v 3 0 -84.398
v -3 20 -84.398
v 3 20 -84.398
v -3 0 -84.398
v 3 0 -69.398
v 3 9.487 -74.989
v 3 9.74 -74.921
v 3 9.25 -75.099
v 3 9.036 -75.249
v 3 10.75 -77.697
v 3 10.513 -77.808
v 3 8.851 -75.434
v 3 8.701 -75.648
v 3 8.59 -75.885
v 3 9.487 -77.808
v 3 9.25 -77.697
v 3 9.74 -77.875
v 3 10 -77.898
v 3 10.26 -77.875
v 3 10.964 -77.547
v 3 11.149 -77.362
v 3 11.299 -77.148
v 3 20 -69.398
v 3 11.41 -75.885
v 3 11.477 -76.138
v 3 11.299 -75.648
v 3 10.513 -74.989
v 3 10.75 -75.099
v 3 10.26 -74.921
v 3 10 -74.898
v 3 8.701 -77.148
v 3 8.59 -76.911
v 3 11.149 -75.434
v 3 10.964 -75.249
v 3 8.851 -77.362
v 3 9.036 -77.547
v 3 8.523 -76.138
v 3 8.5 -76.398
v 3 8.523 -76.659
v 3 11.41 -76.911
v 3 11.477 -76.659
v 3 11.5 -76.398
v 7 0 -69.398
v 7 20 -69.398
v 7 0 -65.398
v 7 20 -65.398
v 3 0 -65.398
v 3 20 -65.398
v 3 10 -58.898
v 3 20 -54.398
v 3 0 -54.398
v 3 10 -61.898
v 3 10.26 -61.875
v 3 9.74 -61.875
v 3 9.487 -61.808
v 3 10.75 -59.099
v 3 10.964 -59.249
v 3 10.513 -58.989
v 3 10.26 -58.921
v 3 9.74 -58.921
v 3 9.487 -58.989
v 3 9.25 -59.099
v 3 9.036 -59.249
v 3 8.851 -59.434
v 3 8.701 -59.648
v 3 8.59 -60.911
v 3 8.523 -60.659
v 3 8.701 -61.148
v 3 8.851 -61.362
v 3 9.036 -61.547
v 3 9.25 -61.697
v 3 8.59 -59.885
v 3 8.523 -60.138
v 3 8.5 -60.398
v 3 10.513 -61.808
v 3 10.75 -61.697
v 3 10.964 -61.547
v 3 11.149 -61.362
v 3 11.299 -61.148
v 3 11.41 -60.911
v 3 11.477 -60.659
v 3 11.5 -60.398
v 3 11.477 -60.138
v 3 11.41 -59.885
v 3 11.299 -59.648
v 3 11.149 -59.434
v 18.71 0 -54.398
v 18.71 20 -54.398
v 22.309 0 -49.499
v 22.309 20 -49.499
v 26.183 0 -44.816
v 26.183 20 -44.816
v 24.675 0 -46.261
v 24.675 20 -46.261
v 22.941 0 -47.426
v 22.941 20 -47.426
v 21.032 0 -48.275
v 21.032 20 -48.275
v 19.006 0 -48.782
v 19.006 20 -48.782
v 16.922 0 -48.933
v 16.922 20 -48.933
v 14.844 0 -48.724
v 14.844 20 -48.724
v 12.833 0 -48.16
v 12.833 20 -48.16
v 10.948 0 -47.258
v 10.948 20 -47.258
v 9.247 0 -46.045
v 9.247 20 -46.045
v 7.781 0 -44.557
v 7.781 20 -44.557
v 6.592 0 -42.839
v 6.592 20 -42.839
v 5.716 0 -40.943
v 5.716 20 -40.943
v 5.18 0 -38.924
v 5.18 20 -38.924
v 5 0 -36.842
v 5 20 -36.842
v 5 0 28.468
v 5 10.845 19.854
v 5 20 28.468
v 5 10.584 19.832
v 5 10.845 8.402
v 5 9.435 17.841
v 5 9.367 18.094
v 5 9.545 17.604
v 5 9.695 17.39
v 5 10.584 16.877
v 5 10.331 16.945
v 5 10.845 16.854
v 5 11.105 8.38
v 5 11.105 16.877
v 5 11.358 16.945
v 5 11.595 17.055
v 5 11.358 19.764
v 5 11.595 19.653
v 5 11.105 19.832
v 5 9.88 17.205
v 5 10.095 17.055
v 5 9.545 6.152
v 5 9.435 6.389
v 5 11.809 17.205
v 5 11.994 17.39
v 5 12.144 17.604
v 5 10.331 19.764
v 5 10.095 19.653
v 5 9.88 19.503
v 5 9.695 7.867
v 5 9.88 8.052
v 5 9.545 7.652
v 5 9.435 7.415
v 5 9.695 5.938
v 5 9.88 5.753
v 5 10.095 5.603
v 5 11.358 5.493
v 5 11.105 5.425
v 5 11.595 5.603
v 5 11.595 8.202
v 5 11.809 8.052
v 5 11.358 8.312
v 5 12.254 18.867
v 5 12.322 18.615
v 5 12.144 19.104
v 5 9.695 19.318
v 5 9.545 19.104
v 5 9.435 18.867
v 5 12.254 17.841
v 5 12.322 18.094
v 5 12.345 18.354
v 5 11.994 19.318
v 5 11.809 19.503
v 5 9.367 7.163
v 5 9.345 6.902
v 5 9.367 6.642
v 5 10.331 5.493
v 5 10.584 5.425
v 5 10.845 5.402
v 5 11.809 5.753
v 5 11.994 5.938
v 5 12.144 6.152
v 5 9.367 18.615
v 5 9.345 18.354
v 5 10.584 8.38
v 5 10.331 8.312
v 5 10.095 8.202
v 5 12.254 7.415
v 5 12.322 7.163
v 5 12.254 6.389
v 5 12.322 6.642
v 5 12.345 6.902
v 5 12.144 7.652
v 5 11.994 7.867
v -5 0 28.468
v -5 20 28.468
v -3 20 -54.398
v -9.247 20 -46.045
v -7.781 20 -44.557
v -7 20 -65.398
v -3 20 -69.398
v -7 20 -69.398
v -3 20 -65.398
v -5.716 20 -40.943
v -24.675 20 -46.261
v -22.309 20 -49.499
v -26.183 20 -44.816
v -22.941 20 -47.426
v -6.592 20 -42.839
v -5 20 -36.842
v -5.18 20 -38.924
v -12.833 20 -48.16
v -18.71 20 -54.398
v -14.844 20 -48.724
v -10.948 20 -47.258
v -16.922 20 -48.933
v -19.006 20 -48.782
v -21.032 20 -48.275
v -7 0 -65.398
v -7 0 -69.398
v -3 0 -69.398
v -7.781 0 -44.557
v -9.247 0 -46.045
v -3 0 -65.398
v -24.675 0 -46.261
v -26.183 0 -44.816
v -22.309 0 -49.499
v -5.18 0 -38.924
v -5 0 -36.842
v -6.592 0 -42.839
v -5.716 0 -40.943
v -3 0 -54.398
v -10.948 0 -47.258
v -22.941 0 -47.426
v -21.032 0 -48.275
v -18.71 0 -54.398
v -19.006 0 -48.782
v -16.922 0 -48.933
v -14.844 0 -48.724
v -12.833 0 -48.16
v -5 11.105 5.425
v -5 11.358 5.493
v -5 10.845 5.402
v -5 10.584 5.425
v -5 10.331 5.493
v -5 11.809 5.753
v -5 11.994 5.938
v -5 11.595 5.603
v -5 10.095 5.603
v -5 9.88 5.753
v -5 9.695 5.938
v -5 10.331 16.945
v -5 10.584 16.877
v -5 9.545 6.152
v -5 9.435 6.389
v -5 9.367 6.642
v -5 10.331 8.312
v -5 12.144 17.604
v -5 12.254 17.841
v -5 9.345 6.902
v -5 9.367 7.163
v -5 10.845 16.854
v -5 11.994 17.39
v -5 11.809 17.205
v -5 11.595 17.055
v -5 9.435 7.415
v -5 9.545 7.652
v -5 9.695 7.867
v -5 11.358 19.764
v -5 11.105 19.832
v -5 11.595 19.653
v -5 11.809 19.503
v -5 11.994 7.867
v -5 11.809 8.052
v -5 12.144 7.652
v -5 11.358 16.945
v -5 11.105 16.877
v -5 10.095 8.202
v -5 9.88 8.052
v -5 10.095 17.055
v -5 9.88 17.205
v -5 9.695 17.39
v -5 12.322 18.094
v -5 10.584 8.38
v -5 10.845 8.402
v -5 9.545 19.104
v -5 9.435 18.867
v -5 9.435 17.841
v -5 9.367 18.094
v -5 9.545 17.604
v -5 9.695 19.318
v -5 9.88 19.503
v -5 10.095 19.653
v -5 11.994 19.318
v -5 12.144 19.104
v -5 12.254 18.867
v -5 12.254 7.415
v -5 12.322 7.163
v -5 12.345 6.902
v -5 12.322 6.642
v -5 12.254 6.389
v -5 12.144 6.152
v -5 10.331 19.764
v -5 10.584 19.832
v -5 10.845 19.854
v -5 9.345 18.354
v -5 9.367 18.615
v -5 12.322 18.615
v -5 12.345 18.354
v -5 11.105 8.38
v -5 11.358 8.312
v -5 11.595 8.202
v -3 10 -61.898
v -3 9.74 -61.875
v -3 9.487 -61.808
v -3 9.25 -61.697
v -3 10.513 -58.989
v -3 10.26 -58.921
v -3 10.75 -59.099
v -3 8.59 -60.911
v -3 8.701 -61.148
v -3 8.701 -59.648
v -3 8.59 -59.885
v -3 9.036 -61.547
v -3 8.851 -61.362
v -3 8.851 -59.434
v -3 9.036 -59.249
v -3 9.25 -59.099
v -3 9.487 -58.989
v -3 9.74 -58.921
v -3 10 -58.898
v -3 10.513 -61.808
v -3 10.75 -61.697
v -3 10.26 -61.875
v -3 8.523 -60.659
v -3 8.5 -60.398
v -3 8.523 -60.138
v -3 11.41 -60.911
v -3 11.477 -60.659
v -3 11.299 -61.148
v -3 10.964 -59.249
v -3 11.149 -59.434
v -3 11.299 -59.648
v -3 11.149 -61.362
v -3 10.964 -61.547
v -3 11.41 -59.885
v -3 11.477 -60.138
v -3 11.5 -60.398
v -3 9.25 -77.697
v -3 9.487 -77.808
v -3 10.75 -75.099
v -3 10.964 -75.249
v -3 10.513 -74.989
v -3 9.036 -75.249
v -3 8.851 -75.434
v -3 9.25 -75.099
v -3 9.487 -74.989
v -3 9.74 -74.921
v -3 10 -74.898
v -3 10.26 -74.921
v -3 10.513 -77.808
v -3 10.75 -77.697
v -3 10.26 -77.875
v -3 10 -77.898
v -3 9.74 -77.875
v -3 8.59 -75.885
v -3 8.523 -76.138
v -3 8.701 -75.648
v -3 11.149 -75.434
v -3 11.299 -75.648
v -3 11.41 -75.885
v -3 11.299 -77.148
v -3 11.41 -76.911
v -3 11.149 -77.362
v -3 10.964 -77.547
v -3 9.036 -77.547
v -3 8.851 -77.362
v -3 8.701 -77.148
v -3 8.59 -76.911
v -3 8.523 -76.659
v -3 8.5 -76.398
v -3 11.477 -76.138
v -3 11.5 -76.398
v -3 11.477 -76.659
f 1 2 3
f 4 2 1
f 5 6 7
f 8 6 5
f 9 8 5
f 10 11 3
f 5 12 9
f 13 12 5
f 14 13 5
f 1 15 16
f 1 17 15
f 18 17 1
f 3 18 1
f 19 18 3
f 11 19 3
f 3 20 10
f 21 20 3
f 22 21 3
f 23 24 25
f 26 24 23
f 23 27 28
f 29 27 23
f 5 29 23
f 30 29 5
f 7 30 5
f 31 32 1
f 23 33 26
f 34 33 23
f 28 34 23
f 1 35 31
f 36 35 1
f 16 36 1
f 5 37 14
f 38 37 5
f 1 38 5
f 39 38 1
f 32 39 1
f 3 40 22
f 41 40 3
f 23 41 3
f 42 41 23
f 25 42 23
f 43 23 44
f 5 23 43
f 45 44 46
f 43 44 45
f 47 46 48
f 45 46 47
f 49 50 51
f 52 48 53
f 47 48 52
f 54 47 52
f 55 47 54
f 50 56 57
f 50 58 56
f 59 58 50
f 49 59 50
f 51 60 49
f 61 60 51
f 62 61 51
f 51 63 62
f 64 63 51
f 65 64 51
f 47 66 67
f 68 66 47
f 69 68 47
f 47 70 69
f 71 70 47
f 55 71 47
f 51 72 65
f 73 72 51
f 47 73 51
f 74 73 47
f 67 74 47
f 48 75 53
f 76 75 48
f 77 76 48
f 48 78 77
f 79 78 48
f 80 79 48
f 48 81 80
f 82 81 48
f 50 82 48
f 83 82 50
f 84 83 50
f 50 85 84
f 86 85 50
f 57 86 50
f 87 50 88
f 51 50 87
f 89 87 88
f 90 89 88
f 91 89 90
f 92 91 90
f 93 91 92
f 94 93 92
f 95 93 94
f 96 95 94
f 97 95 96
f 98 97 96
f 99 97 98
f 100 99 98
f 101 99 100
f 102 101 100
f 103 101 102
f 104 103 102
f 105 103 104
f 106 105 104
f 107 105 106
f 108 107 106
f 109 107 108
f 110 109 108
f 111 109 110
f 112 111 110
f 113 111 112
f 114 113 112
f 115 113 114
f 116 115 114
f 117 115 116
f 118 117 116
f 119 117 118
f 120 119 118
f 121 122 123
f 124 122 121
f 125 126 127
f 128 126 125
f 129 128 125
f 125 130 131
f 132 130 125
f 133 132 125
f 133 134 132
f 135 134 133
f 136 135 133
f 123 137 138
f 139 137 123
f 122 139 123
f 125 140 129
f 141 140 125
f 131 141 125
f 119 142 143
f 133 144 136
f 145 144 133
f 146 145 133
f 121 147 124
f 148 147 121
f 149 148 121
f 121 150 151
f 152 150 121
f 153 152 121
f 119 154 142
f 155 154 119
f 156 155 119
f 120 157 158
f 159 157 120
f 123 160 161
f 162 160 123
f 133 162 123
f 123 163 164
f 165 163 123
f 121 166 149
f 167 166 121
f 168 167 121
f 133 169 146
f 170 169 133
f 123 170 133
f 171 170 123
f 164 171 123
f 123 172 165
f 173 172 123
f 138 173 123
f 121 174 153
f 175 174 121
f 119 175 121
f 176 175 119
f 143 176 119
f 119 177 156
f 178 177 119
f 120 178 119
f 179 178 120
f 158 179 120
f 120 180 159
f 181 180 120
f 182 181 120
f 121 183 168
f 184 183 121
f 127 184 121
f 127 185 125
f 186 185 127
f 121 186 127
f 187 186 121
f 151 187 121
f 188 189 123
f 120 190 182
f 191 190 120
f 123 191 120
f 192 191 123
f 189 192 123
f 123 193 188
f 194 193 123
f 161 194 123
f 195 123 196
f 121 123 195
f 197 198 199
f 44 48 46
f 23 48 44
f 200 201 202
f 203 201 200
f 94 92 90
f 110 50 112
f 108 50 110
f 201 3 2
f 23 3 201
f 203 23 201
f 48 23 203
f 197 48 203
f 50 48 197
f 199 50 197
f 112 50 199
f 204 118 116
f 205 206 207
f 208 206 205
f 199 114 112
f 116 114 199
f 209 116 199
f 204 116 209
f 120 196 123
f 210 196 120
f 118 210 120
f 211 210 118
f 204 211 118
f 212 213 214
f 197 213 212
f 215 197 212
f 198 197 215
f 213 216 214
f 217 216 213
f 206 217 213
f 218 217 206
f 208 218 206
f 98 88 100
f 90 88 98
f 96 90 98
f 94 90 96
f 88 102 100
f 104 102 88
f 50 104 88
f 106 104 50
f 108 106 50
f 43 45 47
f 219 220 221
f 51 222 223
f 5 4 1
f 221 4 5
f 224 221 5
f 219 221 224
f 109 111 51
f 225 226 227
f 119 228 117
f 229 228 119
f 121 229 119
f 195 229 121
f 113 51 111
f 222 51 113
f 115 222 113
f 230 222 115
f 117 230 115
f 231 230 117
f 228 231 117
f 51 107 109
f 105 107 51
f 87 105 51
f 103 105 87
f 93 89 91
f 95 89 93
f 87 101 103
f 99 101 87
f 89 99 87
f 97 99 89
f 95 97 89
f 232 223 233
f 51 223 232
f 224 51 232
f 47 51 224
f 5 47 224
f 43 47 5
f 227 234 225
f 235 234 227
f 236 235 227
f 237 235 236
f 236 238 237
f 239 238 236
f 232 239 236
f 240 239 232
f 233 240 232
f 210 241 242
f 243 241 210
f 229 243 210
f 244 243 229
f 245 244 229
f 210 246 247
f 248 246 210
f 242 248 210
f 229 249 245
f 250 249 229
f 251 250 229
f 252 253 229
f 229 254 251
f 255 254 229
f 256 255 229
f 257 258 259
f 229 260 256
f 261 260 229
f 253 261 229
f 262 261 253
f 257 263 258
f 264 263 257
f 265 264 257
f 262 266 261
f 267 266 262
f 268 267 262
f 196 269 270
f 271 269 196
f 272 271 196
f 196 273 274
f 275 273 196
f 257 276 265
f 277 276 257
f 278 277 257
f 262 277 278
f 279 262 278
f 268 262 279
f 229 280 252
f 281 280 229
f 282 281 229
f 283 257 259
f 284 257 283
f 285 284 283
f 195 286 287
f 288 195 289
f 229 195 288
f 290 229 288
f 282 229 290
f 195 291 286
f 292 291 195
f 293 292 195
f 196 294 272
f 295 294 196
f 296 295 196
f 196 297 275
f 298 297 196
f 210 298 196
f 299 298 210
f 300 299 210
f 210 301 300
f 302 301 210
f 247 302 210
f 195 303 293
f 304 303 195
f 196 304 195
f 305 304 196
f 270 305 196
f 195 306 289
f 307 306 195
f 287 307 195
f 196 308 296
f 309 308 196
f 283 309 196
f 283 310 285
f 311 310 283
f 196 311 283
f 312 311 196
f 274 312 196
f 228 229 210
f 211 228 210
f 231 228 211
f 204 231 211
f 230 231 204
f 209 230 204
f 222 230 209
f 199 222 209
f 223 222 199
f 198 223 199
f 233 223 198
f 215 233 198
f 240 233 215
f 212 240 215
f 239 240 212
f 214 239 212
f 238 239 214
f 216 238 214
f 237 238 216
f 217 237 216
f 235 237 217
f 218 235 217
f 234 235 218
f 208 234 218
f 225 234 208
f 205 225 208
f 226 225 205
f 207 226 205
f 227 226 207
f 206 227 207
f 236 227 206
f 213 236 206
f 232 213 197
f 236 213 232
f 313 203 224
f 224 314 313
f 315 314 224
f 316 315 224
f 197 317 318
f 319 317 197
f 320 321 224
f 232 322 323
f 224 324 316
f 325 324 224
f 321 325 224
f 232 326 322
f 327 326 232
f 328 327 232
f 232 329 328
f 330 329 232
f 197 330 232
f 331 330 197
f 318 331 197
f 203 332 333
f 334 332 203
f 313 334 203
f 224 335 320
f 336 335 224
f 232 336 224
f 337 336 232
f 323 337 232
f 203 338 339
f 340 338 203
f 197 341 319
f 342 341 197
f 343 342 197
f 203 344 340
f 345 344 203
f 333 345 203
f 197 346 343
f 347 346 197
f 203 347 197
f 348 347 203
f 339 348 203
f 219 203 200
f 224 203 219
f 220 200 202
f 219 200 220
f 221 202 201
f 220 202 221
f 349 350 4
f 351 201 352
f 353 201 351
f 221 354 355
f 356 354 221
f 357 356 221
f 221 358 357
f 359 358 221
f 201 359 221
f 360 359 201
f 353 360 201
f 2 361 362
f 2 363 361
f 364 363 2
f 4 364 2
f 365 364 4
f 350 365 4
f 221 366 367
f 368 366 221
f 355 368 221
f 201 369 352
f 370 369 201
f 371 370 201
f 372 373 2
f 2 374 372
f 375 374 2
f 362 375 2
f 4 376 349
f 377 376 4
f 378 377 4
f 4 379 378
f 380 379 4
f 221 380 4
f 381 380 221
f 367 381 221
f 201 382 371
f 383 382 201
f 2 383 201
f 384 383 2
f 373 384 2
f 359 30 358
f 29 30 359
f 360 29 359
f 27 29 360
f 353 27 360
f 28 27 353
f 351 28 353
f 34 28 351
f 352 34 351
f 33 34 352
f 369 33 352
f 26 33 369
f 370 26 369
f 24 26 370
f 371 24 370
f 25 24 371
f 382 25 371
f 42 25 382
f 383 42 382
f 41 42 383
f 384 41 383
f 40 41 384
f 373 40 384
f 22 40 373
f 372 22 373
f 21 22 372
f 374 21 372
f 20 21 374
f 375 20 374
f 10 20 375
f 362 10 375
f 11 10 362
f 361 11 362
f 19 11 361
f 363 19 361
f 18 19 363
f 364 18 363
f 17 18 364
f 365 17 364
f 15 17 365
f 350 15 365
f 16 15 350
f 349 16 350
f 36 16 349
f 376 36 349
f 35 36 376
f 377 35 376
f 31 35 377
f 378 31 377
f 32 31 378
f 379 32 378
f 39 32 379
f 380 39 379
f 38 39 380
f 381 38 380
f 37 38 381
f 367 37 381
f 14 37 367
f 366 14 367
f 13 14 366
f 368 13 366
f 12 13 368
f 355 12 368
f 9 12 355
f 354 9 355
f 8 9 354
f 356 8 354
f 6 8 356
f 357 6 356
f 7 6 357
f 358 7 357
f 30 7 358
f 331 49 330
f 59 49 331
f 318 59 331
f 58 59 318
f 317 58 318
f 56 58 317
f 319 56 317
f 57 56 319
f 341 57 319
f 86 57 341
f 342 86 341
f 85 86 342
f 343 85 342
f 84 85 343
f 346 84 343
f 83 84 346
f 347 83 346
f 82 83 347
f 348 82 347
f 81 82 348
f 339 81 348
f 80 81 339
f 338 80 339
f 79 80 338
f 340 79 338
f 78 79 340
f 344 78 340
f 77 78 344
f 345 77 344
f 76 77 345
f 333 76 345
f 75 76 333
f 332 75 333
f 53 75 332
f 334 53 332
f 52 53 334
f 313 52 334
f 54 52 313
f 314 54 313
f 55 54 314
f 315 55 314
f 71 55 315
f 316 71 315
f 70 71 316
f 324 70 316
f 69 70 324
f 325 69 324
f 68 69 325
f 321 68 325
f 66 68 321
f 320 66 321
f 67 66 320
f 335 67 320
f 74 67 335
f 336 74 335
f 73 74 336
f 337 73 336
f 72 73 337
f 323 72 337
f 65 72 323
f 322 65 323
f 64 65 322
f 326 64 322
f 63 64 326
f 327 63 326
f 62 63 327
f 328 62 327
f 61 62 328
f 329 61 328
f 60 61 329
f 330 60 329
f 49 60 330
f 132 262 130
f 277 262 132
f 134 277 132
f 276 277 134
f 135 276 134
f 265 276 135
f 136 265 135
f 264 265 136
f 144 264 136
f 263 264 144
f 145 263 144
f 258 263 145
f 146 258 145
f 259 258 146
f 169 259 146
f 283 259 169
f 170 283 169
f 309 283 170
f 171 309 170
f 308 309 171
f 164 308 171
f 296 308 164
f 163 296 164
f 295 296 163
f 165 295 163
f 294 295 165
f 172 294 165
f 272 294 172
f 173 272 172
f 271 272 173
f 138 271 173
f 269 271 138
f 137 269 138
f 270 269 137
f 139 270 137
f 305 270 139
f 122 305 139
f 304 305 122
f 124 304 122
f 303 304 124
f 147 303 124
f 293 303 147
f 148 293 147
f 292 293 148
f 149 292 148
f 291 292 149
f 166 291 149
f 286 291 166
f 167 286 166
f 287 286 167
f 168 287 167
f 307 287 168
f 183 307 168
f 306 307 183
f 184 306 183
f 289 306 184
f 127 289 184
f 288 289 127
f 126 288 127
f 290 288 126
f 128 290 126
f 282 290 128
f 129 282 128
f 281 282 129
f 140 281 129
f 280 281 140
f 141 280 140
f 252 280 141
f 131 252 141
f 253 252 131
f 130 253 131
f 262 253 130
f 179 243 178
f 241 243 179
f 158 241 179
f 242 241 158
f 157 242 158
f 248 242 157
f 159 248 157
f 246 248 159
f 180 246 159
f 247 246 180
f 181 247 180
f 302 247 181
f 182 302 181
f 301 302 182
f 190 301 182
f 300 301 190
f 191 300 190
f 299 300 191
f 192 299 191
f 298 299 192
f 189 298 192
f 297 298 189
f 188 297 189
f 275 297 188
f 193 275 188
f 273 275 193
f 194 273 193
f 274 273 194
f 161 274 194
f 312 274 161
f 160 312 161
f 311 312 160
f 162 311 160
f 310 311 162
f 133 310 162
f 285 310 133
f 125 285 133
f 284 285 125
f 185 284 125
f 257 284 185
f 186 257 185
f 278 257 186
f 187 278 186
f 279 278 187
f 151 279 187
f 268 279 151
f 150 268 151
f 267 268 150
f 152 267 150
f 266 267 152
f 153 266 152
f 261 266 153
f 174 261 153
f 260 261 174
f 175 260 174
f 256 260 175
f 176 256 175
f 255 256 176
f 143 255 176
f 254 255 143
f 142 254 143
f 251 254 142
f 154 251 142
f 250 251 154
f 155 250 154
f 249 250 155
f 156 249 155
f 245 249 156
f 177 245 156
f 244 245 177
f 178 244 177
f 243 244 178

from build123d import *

# Parameters (mm, degrees)
BOSS_EXTRU_1_DEPTH      = 20
ESQUISSE3_R             = 1.5
ENL_V_MAT_EXTRU_3_DEPTH = 20
ESQUISSE4_R             = 1.5
ENL_V_MAT_EXTRU_4_DEPTH = 10
ESQUISSE5_R             = 1.5
ENL_V_MAT_EXTRU_5_DEPTH = 10


with BuildPart() as part:
    # Esquisse1 → Boss.-Extru.1 (new body)
    with BuildSketch(Plane(origin=(0, 0, 0), x_dir=(1, 0, 0), z_dir=(0, 1, 0))):
        with BuildLine():
            Line((-3, 84.398281038), (-3, 69.398281038))
            Line((-3, 69.398281038), (-7, 69.398281038))
            Line((-7, 69.398281038), (-7, 65.398281038))
            Line((-7, 65.398281038), (-3, 65.398281038))
            Line((-3, 65.398281038), (-3, 54.398281038))
            Line((-3, 54.398281038), (-18.71, 54.398281038))
            ThreePointArc((-18.71, 54.398281038), (-22.308577777, 49.499317693), (-26.183329952, 44.81574006))
            ThreePointArc((-26.183329952, 44.81574006), (-12.83252844, 48.159570073), (-5, 36.842476876))
            Line((-5, 36.842476876), (-5, -28.467834127))
            Line((-5, -28.467834127), (0, -28.467834127))
            Line((0, -28.467834127), (0, 84.398281038))
            Line((0, 84.398281038), (-3, 84.398281038))
        make_face()
    boss_extru_1 = extrude(amount=BOSS_EXTRU_1_DEPTH)

    # Symétrie1: Boss.-Extru.1 across plane
    add(boss_extru_1.mirror(Plane(origin=(0, 20, -84.398281038), x_dir=(0, 0, 1), z_dir=(-1, 0, 0))))

    # Esquisse3 → Enlèv. mat.-Extru.3 (cut)
    with BuildSketch(Plane.ZY.offset(3)):
        with Locations((-76.398281038, 10)):
            Circle(ESQUISSE3_R)
        with Locations((-60.398281038, 10)):
            Circle(ESQUISSE3_R)
    extrude(amount=-ENL_V_MAT_EXTRU_3_DEPTH, mode=Mode.SUBTRACT)

    # Esquisse4 → Enlèv. mat.-Extru.4 (cut)
    with BuildSketch(Plane(origin=(5, 0, 0), x_dir=(0, 0, -1), z_dir=(1, 0, 0))):
        with Locations((-18.354301853, 10.844529297)):
            Circle(ESQUISSE4_R)
    extrude(amount=-ENL_V_MAT_EXTRU_4_DEPTH, mode=Mode.SUBTRACT)

    # Esquisse5 → Enlèv. mat.-Extru.5 (cut)
    with BuildSketch(Plane(origin=(5, 0, 0), x_dir=(0, 0, -1), z_dir=(1, 0, 0))):
        with Locations((-6.902461617, 10.844529297)):
            Circle(ESQUISSE5_R)
    extrude(amount=-ENL_V_MAT_EXTRU_5_DEPTH, mode=Mode.SUBTRACT)


solid = part.part
